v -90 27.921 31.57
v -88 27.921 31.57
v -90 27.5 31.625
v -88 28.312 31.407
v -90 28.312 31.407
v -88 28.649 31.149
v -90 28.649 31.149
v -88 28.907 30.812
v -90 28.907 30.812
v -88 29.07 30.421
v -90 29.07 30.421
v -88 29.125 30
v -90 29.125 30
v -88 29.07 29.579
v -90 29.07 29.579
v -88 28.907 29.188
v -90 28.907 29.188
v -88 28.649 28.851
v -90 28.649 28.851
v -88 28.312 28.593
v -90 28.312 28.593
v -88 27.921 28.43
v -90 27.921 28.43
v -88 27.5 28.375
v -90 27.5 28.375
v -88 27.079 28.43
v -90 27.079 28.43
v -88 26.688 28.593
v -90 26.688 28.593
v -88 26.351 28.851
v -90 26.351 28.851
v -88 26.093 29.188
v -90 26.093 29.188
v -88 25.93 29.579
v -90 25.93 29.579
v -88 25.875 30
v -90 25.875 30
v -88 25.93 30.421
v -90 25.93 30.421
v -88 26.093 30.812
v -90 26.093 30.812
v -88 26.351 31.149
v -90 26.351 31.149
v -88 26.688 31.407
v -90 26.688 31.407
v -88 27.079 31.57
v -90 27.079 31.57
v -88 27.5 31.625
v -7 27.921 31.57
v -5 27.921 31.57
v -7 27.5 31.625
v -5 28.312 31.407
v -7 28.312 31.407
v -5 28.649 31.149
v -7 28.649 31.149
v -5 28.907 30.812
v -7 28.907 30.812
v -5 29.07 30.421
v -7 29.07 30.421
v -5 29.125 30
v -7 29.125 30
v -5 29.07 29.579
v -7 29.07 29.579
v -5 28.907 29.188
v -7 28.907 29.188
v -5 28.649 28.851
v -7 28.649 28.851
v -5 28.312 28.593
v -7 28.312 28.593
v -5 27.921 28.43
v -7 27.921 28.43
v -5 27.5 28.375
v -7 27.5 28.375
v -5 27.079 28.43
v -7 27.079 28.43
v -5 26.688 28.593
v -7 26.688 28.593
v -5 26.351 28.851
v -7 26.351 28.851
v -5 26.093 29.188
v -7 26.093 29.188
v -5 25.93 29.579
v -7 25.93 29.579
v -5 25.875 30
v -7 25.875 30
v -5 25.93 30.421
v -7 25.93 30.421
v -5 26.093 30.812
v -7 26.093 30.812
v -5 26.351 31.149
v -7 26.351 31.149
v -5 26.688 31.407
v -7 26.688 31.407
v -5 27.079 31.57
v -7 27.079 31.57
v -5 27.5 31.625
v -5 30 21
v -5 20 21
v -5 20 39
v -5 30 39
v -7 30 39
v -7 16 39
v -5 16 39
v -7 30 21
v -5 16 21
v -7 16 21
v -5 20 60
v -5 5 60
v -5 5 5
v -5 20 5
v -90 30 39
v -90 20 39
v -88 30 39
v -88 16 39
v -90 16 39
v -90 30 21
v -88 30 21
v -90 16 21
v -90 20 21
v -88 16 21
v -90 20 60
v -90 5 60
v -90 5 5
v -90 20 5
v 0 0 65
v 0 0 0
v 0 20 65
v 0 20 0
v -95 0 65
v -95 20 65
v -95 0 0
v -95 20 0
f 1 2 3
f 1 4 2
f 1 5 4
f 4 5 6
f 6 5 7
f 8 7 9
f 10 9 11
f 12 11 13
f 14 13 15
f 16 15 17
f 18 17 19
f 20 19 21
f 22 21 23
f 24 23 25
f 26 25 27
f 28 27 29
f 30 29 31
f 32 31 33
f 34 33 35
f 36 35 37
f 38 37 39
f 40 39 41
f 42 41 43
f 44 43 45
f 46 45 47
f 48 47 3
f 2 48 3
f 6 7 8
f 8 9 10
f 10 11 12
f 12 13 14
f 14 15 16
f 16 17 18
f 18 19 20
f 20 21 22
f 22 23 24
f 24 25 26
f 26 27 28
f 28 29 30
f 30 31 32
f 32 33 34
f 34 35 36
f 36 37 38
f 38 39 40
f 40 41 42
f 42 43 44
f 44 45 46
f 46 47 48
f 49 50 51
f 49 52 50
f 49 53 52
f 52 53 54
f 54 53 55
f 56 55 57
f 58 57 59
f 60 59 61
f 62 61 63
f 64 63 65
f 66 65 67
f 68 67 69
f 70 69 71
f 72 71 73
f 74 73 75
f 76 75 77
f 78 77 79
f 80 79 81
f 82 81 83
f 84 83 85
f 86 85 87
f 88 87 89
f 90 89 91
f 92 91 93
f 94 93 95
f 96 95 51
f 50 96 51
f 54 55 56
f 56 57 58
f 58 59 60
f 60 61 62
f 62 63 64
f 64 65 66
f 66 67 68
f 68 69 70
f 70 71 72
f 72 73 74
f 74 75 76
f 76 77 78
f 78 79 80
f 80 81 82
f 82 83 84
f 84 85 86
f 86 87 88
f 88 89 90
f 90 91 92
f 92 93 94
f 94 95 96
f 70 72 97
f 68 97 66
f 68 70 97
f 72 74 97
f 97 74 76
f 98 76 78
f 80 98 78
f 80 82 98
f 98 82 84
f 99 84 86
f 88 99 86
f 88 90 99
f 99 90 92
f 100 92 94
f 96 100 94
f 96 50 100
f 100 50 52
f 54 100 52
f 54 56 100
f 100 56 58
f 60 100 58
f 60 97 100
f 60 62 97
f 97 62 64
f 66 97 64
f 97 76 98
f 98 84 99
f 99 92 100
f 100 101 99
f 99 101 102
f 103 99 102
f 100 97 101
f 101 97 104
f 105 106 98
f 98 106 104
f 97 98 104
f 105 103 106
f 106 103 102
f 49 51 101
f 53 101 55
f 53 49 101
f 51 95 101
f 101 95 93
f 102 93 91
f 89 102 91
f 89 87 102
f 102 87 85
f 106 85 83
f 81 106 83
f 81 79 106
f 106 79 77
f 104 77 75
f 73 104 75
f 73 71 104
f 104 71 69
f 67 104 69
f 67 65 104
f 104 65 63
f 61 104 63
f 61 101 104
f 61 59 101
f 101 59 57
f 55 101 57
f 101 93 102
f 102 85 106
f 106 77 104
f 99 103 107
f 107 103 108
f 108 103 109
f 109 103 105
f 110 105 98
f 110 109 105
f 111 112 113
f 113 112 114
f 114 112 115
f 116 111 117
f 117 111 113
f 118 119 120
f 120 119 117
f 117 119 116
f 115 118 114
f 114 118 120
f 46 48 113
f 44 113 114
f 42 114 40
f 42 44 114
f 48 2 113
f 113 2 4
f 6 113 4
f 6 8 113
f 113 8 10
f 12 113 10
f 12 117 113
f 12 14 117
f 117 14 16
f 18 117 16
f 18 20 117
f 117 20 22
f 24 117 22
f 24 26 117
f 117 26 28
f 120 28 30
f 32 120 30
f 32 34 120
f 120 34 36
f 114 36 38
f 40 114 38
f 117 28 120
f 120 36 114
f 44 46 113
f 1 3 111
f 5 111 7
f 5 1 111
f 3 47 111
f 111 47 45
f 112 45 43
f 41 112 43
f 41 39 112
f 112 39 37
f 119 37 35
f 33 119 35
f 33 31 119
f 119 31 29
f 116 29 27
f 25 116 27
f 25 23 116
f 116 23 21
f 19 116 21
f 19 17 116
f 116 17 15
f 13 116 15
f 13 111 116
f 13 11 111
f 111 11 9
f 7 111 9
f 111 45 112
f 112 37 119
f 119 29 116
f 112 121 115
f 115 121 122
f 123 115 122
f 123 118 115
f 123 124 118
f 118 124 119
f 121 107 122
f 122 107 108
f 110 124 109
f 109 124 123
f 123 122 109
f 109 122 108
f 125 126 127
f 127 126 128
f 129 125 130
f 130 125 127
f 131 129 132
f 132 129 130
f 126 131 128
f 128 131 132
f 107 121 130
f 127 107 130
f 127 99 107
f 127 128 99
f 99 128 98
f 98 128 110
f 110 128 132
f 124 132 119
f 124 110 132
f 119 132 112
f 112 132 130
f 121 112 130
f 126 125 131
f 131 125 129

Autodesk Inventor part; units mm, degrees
ref_plane "YZ Plane" through (0, 0, 0) normal (1, 0, 0) x (0, 1, 0)
ref_plane "XZ Plane" through (0, 0, 0) normal (0, 1, 0) x (-1, 0, 0)
sketch "Sketch1" plane through (0, 0, 0) normal (0, 1, 0) x (-1, 0, 0)
  line L0 (0, 0) -> (95, 0)
  line L1 (95, 0) -> (95, 65)
  line L2 (95, 65) -> (0, 65)
  line L3 (0, 65) -> (0, 0)
extrude "Extrusion1" add sketch "Sketch1" along normal blind 20
sketch "Sketch2" plane through (0, 20, 0) normal (0, 1, 0) x (1, 0, 0)
  line L0 (-5, -5) -> (-90, -5)
  line L1 (-90, -5) -> (-90, -60)
  line L2 (-90, -60) -> (-5, -60)
  line L3 (-5, -60) -> (-5, -5)
extrude "Extrusion2" cut sketch "Sketch2" against normal blind 15
sketch "Sketch5" plane through (-90, 20, 60) normal (1, 0, 0) x (0, 0, -1)
  line L0 (0, -15) -> (55, -15) projected
  line L1 (21, -4) -> (39, -4)
  line L2 (39, -4) -> (39, 10)
  line L3 (39, 10) -> (21, 10)
  line L4 (21, 10) -> (21, -4)
  point P0 (60, -20)
  point P1 (60, 0)
  dimension "d12" = 18
  dimension "d13" = 14
  dimension "d15" = 21
  dimension "d16" = 11
extrude "Extrusion3" add sketch "Sketch5" along normal blind 2
ref_plane "Work Plane1" through (-47.5, 5, 60) normal (1, 0, 0) x (0, 0, -1)
mirror "Mirror1" about plane through (-47.5, 5, 60) normal (1, 0, 0) of "Extrusion3"
sketch "Sketch7" plane through (-5, 20, 21) normal (1, 0, 0) x (0, 0, -1)
  line L0 (0, 10) -> (-18, 10) projected
  line L1 (-18, 10) -> (-18, 0) projected
  point P0 (21, -20)
  point P1 (-9, 7.5)
  dimension "d19" = 9
  dimension "d20" = 2.5
hole "Hole2" at (-5, 27.5, 30) direction (-1, 0, 0) diameter 3.25 end through all
properties part number "RESONATORCHAMBER"
